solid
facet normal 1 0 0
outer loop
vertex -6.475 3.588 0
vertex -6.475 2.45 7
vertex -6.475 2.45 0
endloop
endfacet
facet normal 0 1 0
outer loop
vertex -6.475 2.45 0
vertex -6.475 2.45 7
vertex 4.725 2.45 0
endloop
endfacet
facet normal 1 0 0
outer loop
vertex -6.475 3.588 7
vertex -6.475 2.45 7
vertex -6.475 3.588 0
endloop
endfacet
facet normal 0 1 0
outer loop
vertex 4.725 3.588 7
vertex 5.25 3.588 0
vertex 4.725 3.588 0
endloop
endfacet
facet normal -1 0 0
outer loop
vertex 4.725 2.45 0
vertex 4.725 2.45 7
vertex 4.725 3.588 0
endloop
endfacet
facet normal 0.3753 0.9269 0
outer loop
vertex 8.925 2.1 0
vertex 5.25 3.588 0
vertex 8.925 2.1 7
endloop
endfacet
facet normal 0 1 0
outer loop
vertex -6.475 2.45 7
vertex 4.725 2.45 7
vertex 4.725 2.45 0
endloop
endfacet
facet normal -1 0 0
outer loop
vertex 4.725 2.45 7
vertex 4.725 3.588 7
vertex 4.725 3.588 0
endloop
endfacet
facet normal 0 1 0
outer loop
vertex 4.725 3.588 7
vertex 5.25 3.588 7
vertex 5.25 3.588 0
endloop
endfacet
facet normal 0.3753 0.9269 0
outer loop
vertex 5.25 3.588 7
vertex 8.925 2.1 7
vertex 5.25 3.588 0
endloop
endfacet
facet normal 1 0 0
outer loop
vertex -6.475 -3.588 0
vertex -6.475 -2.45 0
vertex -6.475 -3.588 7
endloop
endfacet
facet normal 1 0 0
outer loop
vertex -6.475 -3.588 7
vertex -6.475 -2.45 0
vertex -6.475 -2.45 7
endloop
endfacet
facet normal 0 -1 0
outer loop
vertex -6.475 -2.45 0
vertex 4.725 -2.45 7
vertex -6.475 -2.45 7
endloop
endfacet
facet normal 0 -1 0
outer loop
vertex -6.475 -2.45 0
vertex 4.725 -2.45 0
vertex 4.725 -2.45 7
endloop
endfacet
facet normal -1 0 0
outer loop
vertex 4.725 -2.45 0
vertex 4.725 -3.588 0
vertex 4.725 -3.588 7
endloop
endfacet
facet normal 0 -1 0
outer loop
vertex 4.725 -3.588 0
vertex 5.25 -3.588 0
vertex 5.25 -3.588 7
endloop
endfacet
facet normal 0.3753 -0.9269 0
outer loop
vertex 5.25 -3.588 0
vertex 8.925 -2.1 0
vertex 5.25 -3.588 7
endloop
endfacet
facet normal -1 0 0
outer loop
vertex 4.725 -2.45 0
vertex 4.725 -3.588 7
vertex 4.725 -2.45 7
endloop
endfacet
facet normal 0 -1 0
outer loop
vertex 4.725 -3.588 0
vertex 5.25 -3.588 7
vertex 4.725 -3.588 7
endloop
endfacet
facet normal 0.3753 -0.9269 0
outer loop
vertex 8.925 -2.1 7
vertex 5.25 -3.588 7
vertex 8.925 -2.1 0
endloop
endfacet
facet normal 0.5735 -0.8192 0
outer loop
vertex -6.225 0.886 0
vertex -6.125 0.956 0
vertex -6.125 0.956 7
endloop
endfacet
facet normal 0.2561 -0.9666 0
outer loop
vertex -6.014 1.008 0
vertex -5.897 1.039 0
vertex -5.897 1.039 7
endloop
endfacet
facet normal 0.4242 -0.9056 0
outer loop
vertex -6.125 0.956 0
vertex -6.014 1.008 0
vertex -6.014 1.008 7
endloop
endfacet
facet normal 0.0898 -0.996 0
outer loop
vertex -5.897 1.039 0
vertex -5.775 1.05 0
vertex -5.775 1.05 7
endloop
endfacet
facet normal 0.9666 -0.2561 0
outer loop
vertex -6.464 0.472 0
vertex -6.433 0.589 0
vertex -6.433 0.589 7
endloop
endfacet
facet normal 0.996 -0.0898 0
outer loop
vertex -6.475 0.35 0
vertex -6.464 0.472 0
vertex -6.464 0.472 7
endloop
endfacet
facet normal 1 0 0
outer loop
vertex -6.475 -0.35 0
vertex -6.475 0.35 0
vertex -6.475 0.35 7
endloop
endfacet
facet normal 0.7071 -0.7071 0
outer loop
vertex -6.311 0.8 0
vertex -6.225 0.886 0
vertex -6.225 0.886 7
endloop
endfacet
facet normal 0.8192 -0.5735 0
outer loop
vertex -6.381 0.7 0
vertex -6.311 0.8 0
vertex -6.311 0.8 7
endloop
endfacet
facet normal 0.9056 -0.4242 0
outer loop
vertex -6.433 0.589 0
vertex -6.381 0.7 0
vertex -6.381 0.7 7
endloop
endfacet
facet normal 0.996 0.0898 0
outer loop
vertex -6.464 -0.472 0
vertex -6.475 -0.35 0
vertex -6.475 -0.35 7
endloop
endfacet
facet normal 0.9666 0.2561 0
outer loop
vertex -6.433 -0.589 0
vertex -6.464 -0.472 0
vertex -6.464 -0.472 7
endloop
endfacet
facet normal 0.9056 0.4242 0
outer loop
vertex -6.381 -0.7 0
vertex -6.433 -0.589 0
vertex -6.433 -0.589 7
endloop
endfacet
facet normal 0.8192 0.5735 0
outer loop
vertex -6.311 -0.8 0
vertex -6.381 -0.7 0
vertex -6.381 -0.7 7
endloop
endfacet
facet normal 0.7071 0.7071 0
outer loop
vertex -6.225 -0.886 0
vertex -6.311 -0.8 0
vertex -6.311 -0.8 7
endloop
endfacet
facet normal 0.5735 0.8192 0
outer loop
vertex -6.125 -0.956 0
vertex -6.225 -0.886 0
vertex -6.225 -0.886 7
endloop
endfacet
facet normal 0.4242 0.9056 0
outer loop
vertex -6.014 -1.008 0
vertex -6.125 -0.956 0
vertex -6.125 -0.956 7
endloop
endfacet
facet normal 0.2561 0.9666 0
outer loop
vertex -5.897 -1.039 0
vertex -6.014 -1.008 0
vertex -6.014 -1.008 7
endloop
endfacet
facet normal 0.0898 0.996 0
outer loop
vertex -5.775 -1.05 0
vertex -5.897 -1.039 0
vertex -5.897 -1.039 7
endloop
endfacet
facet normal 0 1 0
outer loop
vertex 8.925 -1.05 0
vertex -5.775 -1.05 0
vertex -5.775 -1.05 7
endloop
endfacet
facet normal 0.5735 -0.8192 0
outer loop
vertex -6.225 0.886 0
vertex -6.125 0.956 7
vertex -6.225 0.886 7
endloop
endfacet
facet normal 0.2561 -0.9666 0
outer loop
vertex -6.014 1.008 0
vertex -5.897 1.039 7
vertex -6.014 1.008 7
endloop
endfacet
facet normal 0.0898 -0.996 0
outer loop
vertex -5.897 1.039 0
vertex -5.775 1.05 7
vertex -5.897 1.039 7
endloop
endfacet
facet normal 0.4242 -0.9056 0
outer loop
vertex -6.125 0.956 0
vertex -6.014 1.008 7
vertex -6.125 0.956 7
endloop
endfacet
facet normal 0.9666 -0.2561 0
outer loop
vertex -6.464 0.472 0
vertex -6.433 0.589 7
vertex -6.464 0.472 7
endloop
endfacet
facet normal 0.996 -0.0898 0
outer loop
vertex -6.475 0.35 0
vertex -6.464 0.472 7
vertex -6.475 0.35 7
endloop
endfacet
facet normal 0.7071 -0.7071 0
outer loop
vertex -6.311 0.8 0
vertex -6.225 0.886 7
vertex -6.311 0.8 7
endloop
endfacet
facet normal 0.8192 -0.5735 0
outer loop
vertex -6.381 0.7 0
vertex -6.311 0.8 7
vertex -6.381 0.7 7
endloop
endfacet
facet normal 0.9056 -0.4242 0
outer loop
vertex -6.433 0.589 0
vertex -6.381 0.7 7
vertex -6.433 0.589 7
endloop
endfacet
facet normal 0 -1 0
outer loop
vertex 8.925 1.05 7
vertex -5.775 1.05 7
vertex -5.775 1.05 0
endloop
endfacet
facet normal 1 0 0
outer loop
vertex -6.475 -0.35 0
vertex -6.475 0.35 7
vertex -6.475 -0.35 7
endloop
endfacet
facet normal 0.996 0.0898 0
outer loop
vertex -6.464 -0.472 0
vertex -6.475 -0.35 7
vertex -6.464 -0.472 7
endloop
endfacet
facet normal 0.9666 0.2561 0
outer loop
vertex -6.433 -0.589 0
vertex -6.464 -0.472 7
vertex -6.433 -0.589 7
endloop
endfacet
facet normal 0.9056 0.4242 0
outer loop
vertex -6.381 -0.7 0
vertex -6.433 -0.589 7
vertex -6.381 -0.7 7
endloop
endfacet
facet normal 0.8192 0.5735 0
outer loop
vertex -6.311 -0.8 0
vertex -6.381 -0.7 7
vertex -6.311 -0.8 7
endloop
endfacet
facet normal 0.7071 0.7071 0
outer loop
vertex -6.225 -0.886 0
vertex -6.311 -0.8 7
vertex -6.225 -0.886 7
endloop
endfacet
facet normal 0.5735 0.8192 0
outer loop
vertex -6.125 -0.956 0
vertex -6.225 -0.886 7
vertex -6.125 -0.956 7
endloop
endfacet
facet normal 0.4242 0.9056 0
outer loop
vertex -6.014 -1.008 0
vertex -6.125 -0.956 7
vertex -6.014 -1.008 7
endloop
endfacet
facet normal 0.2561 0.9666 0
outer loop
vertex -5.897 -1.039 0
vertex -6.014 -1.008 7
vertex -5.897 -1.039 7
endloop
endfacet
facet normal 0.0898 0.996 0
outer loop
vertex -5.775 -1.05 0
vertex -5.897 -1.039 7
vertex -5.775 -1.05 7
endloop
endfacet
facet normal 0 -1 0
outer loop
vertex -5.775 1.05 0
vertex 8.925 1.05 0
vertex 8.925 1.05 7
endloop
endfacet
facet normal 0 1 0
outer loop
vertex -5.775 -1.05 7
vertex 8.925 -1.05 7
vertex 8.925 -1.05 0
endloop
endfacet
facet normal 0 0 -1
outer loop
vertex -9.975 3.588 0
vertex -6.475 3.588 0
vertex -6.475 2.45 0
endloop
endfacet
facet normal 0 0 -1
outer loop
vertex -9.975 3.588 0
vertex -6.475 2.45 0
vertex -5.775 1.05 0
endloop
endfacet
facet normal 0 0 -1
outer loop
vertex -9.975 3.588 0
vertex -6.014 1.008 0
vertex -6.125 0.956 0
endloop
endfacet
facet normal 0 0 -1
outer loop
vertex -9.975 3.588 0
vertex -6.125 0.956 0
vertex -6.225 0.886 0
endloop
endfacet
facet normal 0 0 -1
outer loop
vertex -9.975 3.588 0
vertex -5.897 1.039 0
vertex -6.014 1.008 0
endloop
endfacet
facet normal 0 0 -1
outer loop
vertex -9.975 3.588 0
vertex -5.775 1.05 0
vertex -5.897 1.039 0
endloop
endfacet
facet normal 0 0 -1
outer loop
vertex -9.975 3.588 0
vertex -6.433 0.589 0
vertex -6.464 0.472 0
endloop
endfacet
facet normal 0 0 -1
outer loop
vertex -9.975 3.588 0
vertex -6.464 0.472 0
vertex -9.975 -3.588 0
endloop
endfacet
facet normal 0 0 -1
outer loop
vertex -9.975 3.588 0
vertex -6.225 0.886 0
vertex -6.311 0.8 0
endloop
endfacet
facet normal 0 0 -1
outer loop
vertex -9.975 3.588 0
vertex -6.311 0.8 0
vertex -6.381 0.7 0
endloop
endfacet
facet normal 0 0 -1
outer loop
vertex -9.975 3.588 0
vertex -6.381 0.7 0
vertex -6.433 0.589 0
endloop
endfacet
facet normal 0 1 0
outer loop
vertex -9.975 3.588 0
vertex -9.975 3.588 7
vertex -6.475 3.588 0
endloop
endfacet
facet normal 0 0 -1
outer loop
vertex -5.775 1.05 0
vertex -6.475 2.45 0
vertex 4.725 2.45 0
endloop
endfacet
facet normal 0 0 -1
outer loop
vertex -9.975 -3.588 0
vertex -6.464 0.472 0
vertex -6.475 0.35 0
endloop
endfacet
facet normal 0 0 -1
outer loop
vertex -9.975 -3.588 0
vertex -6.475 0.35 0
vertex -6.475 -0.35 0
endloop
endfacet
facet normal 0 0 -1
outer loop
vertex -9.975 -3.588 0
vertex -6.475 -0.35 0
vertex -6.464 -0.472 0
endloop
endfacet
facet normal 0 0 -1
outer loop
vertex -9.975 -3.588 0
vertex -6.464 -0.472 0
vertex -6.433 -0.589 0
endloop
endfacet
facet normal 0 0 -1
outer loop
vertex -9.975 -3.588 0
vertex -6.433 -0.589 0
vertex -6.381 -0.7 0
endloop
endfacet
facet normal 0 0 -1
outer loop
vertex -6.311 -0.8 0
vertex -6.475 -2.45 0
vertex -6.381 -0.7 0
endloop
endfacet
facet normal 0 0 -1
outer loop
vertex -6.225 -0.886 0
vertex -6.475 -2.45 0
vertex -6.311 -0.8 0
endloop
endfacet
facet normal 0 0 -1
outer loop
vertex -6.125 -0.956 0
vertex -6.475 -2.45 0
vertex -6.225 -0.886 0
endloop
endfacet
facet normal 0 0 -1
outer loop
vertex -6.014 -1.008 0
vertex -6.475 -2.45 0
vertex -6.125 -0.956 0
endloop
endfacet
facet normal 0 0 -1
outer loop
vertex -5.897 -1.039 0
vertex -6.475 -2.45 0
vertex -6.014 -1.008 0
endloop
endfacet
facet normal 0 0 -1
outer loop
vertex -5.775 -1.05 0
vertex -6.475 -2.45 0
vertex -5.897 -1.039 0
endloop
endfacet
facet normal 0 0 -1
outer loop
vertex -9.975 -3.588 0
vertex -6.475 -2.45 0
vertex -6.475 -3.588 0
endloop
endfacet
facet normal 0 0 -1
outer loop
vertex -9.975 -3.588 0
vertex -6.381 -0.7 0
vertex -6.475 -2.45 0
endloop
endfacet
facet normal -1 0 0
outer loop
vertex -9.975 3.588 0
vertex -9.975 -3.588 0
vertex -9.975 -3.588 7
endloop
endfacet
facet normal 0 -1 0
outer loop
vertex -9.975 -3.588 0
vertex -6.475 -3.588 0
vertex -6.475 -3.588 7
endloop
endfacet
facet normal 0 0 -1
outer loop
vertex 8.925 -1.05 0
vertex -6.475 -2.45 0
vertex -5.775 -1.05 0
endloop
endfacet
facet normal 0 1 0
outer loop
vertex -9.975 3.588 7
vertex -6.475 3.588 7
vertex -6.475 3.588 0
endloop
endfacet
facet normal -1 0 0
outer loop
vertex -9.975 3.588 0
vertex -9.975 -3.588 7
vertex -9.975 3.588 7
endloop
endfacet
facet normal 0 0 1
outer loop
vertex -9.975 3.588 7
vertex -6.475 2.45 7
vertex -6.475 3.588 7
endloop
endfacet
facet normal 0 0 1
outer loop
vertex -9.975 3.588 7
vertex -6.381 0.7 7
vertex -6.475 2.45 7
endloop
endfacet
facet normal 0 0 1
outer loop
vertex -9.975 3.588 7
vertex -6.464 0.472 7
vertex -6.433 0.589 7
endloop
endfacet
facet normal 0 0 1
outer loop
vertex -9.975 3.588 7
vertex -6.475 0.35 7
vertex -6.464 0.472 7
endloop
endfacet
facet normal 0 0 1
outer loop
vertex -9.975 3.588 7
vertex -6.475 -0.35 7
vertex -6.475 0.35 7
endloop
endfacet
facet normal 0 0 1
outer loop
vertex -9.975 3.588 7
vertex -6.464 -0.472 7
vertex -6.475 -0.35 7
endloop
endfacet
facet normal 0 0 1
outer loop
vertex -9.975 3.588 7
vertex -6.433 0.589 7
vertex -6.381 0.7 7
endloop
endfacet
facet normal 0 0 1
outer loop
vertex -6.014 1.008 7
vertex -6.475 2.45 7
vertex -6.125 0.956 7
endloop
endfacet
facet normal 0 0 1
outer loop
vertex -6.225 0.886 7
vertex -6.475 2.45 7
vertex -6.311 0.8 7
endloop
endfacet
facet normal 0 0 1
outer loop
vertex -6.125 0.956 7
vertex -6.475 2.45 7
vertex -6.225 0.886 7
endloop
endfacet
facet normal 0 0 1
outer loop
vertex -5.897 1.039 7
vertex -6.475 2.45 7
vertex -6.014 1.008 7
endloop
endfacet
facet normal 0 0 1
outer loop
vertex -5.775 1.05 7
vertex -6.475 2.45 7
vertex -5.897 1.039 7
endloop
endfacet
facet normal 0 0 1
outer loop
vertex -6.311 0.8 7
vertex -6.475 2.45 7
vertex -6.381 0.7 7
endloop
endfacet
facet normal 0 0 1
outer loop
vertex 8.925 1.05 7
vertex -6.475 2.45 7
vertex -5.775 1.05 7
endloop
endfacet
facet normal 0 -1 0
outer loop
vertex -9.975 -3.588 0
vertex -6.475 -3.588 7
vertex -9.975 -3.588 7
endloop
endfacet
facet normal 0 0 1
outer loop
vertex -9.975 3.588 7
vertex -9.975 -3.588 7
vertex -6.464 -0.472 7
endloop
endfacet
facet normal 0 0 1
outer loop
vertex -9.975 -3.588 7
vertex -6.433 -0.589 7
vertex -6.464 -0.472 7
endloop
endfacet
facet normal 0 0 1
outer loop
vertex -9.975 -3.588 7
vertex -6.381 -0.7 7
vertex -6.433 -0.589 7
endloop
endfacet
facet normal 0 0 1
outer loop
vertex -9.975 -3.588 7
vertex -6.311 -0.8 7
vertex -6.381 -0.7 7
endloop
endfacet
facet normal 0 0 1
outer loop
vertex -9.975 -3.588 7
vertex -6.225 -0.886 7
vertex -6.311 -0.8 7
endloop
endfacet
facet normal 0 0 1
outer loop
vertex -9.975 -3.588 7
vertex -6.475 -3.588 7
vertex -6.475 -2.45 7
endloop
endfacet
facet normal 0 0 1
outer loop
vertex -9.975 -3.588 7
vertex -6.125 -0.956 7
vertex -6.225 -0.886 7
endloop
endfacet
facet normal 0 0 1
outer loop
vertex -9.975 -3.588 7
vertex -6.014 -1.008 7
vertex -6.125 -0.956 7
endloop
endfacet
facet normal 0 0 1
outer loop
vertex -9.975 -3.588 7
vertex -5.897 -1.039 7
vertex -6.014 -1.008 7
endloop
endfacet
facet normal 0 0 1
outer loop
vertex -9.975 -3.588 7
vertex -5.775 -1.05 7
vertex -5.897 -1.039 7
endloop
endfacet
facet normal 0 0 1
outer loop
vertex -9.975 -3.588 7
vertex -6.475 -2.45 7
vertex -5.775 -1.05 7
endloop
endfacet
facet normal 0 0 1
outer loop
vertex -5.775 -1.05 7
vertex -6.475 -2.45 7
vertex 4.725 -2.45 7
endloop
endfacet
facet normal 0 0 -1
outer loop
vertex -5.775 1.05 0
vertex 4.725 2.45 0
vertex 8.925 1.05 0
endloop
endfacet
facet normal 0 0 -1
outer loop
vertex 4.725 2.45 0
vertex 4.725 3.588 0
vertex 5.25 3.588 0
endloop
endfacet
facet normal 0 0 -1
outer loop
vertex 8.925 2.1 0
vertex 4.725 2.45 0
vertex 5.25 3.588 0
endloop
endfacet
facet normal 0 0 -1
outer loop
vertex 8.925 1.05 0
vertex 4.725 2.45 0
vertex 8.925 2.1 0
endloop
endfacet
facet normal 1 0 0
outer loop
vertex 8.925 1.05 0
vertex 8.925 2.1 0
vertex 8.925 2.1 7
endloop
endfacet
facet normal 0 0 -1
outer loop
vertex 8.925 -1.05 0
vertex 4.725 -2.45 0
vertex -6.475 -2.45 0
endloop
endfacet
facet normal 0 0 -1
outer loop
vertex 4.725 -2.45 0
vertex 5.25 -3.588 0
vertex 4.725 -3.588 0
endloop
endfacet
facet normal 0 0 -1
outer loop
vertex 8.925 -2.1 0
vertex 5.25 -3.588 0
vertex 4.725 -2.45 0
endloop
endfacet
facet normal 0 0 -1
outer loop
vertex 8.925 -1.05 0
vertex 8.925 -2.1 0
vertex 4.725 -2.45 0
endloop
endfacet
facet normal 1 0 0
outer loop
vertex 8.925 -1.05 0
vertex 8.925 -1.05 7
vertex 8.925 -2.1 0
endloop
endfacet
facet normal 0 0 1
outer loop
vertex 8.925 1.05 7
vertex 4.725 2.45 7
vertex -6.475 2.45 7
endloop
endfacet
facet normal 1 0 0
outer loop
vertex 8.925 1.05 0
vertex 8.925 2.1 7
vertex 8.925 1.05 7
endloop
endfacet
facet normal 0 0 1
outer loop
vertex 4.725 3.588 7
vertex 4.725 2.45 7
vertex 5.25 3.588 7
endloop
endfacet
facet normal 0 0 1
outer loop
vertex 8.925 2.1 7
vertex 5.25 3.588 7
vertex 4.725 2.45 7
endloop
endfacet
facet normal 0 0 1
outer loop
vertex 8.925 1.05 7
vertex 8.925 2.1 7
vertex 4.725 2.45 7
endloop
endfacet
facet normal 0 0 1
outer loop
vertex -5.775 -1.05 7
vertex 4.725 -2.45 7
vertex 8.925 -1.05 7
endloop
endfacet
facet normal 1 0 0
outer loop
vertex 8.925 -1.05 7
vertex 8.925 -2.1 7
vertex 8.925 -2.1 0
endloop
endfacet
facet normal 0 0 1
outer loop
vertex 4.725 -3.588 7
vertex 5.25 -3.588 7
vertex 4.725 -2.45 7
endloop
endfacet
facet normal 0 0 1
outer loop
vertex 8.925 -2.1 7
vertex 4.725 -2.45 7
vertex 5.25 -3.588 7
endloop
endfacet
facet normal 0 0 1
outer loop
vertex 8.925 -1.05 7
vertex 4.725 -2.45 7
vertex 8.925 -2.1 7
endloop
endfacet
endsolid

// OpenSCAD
$fn = 50;

difference() {
	union() {
		translate(v = [0, 0, 0]) {
			rotate(a = [90, 0, 0]) {
				difference() {
					union() {
						translate(v = [-9.975, 0, -3.5875000000000004]) {
							cube(size = [18.9, 7.0, 7.175000000000001]);
						}
					}
					union() {
						translate(v = [0, 7.1, 0]) {
							rotate(a = [90, 0, 0]) {
								linear_extrude(height = 7.2) {
									polygon(points = [[-6.475, -2.45], [4.725, -2.45], [4.725, -3.5875], [5.25, -3.5875], [9.025, -2.059524], [9.025, -3.6875], [-6.475, -3.6875]]);
								}
							}
						}
						translate(v = [0, 7.1, 0]) {
							rotate(a = [90, 0, 0]) {
								linear_extrude(height = 7.2) {
									polygon(points = [[-6.475, 2.45], [4.725, 2.45], [4.725, 3.5875], [5.25, 3.5875], [9.025, 2.059524], [9.025, 3.6875], [-6.475, 3.6875]]);
								}
							}
						}
						translate(v = [0, 7.1, 0]) {
							rotate(a = [90, 0, 0]) {
								linear_extrude(height = 7.2) {
									polygon(points = [[-6.475, 0.35], [-6.464365, 0.471554], [-6.432785, 0.589414], [-6.381218, 0.7], [-6.311231, 0.799951], [-6.224951, 0.886231], [-6.125, 0.956218], [-6.014414, 1.007785], [-5.896554, 1.039365], [-5.775, 1.05], [9.025, 1.05], [9.025, -1.05], [-5.775, -1.05], [-5.896554, -1.039365], [-6.014414, -1.007785], [-6.125, -0.956218], [-6.224951, -0.886231], [-6.311231, -0.799951], [-6.381218, -0.7], [-6.432785, -0.589414], [-6.464365, -0.471554], [-6.475, -0.35]]);
								}
							}
						}
					}
				}
			}
		}
	}
	union();
}
